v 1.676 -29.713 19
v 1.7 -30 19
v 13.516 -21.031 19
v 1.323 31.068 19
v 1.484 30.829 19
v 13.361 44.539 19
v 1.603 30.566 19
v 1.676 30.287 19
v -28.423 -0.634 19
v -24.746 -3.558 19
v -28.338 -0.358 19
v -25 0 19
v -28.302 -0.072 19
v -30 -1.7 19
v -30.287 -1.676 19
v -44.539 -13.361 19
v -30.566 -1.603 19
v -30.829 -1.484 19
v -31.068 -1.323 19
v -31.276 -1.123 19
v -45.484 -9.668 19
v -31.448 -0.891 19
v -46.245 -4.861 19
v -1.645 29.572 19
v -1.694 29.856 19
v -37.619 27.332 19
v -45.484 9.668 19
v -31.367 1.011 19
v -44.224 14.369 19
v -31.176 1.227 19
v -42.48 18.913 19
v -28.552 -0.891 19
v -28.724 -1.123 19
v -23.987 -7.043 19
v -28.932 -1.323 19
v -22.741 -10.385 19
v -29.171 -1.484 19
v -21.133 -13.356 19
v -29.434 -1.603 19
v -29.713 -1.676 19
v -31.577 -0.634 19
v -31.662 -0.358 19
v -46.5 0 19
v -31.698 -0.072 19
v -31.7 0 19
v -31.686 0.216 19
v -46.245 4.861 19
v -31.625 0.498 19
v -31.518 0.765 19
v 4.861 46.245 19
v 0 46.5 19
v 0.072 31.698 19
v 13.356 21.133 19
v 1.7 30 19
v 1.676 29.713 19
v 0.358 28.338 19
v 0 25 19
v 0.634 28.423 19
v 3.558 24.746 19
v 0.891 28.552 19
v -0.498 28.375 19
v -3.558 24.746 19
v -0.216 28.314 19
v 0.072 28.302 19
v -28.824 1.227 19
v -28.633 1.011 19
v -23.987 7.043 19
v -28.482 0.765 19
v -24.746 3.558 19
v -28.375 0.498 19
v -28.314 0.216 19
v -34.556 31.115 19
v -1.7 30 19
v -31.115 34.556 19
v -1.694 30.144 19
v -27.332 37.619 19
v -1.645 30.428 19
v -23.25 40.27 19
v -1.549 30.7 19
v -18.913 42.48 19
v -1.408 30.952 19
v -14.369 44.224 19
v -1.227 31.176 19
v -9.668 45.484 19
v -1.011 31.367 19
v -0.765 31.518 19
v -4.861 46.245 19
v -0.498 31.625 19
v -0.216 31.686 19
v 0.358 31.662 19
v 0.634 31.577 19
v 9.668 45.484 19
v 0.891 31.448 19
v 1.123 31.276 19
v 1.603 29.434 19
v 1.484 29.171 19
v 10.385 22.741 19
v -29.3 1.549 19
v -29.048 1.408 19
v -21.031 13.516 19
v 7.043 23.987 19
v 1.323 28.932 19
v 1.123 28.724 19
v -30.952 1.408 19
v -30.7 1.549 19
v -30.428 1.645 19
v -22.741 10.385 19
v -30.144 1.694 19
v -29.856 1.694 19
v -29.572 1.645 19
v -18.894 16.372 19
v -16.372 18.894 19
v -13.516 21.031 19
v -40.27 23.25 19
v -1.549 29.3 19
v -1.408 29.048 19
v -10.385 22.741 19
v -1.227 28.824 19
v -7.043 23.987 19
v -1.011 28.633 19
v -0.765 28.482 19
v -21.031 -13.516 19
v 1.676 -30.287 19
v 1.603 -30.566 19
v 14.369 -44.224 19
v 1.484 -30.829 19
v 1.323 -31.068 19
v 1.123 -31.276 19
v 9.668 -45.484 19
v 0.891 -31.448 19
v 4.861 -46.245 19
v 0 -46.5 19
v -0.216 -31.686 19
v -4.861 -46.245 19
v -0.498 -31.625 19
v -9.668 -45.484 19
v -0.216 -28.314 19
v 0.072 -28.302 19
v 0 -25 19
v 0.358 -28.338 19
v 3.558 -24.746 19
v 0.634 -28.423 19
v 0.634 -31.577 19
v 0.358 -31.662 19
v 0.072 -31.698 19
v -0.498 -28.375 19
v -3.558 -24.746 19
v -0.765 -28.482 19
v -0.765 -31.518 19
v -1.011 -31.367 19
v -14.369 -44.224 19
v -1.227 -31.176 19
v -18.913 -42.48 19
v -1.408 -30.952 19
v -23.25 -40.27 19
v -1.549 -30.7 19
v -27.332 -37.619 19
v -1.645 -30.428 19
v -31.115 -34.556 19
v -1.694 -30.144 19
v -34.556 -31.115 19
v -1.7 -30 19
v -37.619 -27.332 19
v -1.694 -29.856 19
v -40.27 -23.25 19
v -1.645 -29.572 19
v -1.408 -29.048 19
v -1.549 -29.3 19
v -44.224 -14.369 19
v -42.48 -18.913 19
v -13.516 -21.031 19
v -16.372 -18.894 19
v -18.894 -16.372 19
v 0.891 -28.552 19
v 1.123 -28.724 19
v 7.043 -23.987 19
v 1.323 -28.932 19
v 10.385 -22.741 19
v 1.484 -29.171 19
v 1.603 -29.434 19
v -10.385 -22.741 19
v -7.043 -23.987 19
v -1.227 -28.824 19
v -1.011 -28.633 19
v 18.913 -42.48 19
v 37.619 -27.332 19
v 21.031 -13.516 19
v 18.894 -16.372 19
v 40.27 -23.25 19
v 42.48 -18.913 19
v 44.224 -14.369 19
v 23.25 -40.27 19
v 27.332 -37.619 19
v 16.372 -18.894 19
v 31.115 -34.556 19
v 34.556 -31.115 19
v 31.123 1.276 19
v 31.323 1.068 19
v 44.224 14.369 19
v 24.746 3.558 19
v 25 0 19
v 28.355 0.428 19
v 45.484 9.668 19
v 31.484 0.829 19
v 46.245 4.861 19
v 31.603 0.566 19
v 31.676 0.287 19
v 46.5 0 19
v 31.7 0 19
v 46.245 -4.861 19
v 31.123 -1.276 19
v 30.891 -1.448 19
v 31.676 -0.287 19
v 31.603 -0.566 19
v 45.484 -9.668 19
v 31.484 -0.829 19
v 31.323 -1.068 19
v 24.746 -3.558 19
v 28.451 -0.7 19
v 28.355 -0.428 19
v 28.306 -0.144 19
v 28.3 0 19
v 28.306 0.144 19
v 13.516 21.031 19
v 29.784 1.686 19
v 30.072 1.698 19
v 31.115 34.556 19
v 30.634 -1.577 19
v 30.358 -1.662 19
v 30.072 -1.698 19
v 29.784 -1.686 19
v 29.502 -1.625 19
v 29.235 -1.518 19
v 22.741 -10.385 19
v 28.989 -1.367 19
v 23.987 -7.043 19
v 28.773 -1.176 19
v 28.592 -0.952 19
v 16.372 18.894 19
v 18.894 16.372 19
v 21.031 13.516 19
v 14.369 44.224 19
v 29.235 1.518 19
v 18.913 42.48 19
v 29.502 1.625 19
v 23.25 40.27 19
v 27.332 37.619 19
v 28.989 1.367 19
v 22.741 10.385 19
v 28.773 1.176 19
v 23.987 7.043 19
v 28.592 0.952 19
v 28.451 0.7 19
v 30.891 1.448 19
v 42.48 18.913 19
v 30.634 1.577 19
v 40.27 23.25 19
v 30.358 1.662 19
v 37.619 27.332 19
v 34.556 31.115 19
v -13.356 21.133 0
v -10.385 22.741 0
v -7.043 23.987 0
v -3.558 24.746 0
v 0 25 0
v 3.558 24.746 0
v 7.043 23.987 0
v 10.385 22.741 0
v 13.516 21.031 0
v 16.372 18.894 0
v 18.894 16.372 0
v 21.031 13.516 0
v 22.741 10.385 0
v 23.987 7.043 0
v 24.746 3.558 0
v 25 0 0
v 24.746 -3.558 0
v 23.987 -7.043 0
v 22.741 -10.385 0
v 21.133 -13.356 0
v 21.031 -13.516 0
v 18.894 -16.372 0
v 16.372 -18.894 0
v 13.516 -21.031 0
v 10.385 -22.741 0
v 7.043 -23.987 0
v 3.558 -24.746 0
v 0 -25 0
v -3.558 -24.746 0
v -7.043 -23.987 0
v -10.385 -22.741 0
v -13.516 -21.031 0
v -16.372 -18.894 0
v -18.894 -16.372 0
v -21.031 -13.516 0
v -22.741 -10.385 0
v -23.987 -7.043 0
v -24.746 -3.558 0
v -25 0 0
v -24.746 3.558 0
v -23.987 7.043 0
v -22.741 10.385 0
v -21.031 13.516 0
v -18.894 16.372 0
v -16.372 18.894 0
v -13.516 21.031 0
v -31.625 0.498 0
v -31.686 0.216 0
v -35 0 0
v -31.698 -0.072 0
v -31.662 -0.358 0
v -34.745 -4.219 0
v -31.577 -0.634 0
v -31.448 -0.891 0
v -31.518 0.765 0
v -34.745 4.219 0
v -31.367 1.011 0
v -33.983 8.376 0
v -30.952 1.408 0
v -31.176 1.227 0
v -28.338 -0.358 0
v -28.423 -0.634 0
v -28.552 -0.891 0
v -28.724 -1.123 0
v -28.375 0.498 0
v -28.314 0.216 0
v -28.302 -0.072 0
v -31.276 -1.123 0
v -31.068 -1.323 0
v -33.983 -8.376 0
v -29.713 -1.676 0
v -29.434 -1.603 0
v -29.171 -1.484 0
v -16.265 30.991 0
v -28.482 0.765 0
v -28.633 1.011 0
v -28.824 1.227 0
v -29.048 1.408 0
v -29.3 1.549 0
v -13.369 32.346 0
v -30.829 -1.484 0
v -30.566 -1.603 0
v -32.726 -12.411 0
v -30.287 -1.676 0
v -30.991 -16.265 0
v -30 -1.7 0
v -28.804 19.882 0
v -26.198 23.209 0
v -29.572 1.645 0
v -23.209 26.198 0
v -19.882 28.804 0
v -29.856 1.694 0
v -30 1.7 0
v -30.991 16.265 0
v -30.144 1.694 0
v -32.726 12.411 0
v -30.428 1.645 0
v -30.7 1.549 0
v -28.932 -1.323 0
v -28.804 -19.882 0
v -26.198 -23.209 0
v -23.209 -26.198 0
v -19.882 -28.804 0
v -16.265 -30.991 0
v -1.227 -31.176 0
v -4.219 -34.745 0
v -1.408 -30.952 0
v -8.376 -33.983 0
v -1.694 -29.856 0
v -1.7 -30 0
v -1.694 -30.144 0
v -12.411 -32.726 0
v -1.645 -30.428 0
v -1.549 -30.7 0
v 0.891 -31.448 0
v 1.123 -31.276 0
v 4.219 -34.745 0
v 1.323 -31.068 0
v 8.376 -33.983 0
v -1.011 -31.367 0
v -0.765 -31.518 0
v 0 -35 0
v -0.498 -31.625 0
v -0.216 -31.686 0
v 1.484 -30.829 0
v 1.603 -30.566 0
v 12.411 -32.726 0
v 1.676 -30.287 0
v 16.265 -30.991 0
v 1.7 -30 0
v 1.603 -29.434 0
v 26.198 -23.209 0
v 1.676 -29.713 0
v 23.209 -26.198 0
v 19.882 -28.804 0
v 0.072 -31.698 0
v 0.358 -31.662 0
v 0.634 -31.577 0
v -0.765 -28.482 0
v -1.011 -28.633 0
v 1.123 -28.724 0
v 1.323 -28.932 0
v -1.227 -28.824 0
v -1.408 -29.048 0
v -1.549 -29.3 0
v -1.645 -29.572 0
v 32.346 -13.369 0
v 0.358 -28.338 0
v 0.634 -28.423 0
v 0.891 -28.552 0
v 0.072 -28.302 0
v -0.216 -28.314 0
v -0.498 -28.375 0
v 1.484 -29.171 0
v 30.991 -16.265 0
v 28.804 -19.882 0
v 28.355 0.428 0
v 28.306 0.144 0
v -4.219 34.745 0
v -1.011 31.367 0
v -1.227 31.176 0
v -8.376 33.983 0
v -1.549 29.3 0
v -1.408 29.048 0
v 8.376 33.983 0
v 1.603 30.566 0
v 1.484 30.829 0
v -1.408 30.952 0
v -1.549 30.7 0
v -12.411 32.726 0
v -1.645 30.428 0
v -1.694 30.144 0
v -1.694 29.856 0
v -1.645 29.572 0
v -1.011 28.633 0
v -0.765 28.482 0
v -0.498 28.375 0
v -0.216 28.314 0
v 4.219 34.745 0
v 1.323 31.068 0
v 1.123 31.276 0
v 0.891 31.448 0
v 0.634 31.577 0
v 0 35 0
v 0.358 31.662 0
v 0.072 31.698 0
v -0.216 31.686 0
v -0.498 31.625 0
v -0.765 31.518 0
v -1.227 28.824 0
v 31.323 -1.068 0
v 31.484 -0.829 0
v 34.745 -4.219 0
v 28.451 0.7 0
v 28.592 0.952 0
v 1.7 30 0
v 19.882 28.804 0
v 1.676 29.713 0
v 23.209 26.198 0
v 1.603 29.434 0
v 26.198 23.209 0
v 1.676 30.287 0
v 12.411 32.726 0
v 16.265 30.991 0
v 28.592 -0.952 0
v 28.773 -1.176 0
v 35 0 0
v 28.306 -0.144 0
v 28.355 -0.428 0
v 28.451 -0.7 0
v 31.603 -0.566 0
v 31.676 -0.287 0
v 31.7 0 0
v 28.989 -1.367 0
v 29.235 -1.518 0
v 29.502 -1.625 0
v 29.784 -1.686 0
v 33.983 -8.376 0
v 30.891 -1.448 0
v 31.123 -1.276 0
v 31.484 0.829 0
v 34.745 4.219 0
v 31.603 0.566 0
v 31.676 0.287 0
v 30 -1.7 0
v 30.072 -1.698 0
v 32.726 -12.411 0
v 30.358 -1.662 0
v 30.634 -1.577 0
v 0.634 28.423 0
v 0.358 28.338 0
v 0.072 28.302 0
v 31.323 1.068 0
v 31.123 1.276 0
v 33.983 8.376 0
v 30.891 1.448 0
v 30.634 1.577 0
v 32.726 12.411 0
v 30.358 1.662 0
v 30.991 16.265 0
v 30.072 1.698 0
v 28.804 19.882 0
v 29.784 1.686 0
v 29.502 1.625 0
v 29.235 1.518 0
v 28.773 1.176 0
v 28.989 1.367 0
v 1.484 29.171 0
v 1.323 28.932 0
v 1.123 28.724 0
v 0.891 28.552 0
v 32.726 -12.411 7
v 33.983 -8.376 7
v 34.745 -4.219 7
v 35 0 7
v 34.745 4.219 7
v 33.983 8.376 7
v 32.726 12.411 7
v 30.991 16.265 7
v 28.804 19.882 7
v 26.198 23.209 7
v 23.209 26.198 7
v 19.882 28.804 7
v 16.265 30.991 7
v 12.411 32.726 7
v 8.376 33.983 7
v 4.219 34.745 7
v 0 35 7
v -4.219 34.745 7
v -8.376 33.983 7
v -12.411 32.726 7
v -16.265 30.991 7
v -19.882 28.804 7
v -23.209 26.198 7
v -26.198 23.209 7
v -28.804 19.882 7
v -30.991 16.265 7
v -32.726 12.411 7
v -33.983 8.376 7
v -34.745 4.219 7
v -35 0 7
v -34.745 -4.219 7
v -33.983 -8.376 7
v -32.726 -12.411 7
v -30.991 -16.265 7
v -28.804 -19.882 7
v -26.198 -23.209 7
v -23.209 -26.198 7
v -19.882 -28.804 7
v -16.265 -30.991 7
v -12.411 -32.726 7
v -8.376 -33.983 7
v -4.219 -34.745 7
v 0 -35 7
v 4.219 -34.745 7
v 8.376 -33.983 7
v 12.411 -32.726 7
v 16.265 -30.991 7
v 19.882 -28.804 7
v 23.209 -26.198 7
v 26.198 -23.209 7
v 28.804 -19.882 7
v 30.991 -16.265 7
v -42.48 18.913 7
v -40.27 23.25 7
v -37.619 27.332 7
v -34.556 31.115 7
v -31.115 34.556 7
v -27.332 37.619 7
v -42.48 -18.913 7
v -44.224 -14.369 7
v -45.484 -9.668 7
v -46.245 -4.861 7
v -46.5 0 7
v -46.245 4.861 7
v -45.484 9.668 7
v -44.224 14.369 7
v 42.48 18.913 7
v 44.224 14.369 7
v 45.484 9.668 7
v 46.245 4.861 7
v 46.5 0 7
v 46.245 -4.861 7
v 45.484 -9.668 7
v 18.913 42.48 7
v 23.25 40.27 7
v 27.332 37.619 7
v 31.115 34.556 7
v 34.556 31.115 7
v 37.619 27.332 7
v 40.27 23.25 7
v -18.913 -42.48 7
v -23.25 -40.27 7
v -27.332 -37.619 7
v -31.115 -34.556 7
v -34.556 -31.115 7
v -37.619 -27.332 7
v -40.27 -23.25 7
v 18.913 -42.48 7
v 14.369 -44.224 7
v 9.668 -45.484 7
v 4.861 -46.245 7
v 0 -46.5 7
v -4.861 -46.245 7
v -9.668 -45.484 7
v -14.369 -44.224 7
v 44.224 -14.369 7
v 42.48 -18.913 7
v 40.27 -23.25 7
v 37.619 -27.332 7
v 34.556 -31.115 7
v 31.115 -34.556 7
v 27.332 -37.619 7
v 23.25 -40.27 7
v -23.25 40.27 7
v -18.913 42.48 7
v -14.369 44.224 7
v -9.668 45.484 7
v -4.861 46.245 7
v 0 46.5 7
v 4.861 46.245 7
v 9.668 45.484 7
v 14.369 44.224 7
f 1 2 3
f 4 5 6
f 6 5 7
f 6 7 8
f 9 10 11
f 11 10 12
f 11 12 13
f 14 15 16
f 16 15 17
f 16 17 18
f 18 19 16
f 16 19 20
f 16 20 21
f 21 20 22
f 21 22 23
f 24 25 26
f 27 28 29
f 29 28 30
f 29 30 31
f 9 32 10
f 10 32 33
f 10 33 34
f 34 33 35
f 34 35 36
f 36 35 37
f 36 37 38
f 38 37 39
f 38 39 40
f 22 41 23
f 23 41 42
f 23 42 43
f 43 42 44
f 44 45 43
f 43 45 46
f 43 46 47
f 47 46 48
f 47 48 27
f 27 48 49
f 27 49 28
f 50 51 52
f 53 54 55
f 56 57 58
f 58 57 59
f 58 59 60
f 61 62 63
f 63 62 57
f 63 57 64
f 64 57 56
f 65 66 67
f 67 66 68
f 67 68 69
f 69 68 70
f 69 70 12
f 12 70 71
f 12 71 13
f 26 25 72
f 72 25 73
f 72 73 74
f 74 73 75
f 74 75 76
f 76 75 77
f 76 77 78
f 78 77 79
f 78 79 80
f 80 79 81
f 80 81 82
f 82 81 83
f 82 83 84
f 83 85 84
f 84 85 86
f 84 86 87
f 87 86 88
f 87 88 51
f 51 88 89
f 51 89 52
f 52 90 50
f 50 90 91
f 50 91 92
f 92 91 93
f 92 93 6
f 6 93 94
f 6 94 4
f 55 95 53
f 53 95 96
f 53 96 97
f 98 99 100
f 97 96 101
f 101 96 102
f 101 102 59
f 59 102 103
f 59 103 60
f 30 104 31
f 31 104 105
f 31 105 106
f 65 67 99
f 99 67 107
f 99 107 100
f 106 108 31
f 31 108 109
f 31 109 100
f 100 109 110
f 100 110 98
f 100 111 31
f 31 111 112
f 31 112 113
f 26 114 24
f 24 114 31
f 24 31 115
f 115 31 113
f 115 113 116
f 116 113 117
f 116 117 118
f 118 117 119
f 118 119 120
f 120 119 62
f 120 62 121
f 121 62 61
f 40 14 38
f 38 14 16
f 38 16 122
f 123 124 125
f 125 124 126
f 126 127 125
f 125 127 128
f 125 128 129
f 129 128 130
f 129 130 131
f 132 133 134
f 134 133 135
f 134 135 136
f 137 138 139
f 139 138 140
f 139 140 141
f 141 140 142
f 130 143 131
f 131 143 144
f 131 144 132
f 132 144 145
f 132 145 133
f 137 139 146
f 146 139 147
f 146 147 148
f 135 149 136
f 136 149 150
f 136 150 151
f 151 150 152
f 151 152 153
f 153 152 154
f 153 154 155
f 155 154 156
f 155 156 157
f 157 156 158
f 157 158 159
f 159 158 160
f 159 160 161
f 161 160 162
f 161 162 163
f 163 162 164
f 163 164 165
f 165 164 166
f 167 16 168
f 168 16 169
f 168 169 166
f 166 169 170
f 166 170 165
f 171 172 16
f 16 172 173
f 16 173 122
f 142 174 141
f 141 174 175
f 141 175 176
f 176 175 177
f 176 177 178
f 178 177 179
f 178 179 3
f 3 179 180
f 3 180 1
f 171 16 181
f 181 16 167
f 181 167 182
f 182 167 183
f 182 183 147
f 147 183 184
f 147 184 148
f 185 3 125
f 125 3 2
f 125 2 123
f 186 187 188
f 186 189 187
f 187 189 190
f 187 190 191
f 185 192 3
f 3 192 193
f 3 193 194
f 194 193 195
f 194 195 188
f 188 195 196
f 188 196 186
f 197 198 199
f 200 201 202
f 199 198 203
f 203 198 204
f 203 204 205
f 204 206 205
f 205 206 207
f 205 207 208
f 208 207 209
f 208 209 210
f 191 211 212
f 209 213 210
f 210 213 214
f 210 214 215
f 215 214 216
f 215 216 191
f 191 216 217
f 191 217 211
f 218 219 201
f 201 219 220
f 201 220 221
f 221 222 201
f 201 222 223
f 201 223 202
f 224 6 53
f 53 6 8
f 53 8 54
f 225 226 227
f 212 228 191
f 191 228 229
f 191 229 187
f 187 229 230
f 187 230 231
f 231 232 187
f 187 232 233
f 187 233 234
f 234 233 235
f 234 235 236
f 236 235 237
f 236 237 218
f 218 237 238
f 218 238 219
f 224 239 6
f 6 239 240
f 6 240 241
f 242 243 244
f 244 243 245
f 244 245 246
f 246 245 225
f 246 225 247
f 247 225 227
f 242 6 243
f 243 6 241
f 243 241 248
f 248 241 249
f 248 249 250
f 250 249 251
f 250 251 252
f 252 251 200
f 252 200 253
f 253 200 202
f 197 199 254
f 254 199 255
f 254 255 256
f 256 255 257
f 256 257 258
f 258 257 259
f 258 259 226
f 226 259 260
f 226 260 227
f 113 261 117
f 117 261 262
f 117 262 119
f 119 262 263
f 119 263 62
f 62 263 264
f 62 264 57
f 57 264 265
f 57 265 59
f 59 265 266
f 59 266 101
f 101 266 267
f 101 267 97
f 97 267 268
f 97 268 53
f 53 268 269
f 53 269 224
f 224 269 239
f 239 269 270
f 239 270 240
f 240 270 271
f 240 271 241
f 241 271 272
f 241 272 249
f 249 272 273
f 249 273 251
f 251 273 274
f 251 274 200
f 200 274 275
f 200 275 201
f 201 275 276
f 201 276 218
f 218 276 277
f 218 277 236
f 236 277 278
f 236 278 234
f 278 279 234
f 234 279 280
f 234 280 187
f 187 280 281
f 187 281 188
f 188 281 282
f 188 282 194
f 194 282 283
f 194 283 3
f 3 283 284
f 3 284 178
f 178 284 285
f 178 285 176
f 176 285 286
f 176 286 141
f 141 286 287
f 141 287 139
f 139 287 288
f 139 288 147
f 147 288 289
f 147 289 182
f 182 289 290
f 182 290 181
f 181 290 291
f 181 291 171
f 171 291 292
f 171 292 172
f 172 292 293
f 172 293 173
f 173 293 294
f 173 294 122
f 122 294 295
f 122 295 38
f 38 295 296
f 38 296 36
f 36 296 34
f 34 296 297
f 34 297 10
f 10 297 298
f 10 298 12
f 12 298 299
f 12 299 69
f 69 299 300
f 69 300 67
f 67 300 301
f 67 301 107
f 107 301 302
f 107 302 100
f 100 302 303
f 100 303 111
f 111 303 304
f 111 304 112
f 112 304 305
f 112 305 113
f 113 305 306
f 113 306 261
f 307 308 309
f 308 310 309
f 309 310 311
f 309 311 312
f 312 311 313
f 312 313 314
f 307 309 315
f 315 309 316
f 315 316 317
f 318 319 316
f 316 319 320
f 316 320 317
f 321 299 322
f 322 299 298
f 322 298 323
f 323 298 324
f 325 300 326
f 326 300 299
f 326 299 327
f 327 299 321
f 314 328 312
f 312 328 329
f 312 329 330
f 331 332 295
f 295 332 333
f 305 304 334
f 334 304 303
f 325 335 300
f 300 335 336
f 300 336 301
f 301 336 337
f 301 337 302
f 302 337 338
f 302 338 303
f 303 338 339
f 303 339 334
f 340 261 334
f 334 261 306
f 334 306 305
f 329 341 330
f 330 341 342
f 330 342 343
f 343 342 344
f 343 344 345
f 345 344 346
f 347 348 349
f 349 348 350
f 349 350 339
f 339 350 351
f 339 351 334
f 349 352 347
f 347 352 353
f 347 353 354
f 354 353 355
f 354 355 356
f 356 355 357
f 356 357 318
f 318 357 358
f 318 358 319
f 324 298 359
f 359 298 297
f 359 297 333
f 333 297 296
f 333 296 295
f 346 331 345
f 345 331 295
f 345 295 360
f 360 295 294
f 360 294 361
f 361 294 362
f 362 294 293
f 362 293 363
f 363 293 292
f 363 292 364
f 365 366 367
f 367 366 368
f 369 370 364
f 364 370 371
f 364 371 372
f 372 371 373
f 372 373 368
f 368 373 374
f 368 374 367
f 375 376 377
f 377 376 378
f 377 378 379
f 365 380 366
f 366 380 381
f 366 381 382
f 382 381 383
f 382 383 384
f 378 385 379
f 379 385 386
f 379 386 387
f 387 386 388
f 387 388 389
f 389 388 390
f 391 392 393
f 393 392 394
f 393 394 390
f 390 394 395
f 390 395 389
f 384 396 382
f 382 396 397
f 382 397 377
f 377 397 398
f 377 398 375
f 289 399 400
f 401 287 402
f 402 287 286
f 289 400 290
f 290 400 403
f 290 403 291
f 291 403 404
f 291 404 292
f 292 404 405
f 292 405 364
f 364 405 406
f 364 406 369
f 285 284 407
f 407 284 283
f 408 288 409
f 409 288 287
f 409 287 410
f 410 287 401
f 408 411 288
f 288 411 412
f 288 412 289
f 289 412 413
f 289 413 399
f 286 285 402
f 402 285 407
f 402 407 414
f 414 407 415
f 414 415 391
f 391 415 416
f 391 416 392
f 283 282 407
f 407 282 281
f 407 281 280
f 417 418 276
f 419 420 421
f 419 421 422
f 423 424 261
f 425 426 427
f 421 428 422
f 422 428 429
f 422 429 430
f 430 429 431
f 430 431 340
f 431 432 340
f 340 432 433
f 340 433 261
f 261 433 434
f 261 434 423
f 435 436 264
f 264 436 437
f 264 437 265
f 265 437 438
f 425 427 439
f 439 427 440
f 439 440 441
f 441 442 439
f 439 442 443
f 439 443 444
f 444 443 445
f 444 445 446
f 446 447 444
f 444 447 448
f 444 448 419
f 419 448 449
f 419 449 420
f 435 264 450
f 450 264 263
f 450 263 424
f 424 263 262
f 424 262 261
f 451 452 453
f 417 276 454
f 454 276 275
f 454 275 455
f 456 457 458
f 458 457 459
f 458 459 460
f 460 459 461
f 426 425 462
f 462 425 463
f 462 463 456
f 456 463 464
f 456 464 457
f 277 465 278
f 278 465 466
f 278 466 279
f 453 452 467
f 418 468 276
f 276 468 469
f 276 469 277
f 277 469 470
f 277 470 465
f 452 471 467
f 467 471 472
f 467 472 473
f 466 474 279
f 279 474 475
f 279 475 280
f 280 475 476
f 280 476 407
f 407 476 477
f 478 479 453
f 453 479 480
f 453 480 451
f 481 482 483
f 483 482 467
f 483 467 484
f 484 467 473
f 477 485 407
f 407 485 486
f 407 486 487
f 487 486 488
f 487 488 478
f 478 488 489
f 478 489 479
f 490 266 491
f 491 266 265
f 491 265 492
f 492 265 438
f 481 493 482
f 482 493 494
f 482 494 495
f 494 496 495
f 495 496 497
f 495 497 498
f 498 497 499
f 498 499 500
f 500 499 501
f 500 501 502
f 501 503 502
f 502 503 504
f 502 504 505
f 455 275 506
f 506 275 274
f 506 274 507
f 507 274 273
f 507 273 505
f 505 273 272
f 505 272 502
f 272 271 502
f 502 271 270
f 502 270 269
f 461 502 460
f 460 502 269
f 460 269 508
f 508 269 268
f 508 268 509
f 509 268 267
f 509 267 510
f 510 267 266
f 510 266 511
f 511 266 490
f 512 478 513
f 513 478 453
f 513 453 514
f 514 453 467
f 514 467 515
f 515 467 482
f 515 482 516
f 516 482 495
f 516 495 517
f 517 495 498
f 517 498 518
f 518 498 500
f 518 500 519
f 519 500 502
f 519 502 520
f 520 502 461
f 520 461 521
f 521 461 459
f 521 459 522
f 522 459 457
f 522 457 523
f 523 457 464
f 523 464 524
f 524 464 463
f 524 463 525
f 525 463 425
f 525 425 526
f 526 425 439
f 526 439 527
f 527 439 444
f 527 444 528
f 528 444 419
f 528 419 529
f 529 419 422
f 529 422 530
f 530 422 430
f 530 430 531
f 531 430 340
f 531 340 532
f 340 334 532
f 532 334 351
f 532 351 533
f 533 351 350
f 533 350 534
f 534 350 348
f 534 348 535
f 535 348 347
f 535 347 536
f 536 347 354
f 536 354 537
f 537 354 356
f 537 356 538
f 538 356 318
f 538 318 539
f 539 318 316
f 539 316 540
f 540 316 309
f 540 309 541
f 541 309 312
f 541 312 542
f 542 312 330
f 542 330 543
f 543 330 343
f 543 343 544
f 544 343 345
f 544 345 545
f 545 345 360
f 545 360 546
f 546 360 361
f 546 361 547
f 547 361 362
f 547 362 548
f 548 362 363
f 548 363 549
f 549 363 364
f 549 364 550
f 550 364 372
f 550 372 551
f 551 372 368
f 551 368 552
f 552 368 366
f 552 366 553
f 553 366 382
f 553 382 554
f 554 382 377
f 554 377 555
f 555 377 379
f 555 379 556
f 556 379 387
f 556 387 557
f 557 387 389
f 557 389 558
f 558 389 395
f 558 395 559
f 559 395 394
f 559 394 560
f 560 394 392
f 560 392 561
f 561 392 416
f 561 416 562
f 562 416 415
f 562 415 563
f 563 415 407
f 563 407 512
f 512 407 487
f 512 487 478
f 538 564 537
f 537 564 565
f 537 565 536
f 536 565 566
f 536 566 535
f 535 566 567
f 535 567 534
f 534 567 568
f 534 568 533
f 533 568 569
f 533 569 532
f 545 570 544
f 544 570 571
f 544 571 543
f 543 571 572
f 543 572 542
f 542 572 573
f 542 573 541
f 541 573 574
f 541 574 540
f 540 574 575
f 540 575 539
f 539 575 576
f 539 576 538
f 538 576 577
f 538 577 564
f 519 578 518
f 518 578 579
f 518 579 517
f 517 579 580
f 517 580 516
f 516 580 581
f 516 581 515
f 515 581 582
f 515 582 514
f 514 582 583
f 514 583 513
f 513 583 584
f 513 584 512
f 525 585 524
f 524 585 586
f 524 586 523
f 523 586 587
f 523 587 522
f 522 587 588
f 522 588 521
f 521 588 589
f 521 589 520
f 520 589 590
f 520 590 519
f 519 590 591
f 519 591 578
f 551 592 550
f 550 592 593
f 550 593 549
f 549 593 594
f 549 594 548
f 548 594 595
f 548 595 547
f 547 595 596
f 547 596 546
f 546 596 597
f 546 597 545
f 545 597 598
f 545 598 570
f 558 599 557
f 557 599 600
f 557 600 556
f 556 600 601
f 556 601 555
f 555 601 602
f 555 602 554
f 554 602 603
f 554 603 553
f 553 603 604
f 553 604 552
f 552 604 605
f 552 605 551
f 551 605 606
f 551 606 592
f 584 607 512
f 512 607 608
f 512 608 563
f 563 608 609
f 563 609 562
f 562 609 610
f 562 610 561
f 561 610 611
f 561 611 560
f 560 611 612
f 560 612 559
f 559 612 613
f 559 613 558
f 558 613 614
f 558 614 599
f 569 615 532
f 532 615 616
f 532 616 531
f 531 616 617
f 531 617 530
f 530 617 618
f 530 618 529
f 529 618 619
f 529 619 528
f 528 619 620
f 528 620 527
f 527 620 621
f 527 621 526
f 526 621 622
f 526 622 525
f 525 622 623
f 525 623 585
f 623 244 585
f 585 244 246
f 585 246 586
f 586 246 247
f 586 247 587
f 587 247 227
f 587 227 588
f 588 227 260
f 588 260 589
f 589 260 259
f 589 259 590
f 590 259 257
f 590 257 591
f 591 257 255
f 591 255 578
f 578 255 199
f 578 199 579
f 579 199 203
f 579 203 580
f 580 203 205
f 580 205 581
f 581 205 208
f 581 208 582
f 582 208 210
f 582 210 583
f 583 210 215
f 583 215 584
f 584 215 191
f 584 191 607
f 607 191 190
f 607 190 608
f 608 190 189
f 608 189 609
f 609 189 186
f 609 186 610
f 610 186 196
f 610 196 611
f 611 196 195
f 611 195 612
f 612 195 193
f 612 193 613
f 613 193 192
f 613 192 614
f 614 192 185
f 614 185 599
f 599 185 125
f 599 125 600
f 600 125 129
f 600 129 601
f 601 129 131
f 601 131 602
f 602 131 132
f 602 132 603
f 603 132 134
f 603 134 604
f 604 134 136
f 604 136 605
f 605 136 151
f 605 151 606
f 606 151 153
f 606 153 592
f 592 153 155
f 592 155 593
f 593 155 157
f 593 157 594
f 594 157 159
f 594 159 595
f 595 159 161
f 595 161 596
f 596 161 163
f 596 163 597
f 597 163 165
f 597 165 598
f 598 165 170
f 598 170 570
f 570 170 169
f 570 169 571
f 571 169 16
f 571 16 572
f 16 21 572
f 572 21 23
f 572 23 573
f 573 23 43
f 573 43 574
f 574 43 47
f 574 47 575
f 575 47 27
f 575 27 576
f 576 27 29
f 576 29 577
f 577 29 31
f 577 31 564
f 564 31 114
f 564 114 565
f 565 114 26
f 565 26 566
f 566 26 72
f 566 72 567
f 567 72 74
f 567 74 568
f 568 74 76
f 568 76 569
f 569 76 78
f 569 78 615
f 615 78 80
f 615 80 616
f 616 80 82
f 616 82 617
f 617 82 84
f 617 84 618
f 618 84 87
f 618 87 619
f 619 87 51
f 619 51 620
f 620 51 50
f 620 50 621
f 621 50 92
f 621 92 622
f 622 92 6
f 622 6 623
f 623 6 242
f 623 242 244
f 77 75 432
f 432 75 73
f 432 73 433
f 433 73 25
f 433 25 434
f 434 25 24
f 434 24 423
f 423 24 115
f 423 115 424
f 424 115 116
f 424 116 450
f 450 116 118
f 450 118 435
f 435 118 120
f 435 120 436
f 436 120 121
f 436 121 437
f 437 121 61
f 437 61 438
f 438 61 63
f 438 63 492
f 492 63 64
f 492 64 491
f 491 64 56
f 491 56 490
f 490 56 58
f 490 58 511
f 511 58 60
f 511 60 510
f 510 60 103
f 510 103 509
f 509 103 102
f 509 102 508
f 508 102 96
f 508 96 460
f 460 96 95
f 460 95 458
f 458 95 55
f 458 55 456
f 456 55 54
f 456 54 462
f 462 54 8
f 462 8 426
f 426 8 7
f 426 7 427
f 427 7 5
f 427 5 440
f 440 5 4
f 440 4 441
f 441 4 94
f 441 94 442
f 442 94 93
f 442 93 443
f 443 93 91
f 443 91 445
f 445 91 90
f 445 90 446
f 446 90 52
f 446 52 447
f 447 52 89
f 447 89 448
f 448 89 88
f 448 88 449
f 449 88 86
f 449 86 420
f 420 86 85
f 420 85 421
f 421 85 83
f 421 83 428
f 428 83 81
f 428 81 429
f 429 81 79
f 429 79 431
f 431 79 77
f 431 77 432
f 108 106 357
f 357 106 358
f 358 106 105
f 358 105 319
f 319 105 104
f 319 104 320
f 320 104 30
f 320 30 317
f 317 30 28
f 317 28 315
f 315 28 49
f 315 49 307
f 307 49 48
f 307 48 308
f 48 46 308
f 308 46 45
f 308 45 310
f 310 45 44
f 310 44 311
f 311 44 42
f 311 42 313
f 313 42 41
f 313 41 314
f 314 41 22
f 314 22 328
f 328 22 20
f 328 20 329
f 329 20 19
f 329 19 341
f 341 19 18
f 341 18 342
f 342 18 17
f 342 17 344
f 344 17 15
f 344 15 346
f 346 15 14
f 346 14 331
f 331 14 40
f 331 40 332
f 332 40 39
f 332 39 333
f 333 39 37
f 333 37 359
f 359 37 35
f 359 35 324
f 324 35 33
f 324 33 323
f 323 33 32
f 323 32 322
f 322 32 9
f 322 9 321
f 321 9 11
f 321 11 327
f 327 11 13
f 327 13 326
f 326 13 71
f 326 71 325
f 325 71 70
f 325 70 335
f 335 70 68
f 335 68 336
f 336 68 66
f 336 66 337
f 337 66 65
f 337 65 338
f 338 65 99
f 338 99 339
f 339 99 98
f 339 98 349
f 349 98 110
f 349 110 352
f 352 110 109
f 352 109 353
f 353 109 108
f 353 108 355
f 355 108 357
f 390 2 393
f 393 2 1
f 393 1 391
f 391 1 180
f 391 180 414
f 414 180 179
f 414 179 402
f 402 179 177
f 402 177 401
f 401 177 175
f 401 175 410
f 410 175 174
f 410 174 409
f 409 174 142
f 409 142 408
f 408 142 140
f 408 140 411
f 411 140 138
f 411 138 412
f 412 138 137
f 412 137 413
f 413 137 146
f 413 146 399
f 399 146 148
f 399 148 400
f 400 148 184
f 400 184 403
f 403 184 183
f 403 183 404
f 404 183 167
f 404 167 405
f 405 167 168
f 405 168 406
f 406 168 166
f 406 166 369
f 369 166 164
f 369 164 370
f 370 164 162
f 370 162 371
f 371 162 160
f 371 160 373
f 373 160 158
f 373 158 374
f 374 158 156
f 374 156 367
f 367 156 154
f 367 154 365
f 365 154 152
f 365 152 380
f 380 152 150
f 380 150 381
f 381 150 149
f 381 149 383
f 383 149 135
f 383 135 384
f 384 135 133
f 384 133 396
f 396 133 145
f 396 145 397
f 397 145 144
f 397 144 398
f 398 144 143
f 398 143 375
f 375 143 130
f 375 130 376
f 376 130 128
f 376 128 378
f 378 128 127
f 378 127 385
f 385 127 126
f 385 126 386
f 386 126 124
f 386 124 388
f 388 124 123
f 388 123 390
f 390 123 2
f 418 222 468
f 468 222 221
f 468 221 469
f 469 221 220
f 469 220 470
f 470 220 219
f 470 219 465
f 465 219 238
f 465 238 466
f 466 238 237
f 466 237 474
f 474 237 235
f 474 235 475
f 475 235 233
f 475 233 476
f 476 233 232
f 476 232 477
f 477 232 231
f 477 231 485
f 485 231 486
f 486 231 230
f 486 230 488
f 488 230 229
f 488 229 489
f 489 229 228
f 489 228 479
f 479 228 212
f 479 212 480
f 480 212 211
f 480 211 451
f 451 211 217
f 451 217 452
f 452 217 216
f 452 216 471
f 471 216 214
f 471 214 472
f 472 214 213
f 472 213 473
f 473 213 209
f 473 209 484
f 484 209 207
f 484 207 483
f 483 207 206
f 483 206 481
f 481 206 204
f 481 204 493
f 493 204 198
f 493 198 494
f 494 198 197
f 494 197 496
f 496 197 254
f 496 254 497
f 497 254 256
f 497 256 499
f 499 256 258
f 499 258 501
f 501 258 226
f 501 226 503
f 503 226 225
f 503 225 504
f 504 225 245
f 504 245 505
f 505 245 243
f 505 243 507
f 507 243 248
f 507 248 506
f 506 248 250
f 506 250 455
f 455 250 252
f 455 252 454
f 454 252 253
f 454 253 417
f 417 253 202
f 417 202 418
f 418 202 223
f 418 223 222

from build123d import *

# Parameters (mm, degrees)
SKETCH1_R          = 1.7
CUT_EXTRUDE1_DEPTH = 69.450712195
CIRPATTERN1_COUNT  = 4


with BuildPart() as part:
    # Croquis2 → Revolución1 (revolve)
    with BuildSketch(Plane(origin=(0, 0, 0), x_dir=(1, 0, 0), z_dir=(0, 1, 0)), mode=Mode.PRIVATE) as revoluci_n1_sk:
        Polygon((25, -19), (25, 0), (35, 0), (35, -7), (46.5, -7), (46.5, -19), align=None)
    revolve(revoluci_n1_sk.sketch.rotate(Axis((0, 0, -25.844178122), (0, 0, 1)), 180), axis=Axis((0, 0, -25.844178122), (0, 0, 1)))

    # Sketch1 → Cut-Extrude1 (cut, symmetric)
    with BuildSketch(Plane.XY.offset(19)):
        with Locations((0, 30)):
            Circle(SKETCH1_R)
    cut_extrude1 = extrude(amount=CUT_EXTRUDE1_DEPTH, both=True, mode=Mode.SUBTRACT)

    # CirPattern1: Cut-Extrude1 ×4 about axis
    cirpattern1_axis = Axis((0, 0, 0), (0, 0, 1))
    for i in range(1, CIRPATTERN1_COUNT):
        add(cut_extrude1.rotate(cirpattern1_axis, i * 360 / CIRPATTERN1_COUNT), mode=Mode.SUBTRACT)


solid = part.part
